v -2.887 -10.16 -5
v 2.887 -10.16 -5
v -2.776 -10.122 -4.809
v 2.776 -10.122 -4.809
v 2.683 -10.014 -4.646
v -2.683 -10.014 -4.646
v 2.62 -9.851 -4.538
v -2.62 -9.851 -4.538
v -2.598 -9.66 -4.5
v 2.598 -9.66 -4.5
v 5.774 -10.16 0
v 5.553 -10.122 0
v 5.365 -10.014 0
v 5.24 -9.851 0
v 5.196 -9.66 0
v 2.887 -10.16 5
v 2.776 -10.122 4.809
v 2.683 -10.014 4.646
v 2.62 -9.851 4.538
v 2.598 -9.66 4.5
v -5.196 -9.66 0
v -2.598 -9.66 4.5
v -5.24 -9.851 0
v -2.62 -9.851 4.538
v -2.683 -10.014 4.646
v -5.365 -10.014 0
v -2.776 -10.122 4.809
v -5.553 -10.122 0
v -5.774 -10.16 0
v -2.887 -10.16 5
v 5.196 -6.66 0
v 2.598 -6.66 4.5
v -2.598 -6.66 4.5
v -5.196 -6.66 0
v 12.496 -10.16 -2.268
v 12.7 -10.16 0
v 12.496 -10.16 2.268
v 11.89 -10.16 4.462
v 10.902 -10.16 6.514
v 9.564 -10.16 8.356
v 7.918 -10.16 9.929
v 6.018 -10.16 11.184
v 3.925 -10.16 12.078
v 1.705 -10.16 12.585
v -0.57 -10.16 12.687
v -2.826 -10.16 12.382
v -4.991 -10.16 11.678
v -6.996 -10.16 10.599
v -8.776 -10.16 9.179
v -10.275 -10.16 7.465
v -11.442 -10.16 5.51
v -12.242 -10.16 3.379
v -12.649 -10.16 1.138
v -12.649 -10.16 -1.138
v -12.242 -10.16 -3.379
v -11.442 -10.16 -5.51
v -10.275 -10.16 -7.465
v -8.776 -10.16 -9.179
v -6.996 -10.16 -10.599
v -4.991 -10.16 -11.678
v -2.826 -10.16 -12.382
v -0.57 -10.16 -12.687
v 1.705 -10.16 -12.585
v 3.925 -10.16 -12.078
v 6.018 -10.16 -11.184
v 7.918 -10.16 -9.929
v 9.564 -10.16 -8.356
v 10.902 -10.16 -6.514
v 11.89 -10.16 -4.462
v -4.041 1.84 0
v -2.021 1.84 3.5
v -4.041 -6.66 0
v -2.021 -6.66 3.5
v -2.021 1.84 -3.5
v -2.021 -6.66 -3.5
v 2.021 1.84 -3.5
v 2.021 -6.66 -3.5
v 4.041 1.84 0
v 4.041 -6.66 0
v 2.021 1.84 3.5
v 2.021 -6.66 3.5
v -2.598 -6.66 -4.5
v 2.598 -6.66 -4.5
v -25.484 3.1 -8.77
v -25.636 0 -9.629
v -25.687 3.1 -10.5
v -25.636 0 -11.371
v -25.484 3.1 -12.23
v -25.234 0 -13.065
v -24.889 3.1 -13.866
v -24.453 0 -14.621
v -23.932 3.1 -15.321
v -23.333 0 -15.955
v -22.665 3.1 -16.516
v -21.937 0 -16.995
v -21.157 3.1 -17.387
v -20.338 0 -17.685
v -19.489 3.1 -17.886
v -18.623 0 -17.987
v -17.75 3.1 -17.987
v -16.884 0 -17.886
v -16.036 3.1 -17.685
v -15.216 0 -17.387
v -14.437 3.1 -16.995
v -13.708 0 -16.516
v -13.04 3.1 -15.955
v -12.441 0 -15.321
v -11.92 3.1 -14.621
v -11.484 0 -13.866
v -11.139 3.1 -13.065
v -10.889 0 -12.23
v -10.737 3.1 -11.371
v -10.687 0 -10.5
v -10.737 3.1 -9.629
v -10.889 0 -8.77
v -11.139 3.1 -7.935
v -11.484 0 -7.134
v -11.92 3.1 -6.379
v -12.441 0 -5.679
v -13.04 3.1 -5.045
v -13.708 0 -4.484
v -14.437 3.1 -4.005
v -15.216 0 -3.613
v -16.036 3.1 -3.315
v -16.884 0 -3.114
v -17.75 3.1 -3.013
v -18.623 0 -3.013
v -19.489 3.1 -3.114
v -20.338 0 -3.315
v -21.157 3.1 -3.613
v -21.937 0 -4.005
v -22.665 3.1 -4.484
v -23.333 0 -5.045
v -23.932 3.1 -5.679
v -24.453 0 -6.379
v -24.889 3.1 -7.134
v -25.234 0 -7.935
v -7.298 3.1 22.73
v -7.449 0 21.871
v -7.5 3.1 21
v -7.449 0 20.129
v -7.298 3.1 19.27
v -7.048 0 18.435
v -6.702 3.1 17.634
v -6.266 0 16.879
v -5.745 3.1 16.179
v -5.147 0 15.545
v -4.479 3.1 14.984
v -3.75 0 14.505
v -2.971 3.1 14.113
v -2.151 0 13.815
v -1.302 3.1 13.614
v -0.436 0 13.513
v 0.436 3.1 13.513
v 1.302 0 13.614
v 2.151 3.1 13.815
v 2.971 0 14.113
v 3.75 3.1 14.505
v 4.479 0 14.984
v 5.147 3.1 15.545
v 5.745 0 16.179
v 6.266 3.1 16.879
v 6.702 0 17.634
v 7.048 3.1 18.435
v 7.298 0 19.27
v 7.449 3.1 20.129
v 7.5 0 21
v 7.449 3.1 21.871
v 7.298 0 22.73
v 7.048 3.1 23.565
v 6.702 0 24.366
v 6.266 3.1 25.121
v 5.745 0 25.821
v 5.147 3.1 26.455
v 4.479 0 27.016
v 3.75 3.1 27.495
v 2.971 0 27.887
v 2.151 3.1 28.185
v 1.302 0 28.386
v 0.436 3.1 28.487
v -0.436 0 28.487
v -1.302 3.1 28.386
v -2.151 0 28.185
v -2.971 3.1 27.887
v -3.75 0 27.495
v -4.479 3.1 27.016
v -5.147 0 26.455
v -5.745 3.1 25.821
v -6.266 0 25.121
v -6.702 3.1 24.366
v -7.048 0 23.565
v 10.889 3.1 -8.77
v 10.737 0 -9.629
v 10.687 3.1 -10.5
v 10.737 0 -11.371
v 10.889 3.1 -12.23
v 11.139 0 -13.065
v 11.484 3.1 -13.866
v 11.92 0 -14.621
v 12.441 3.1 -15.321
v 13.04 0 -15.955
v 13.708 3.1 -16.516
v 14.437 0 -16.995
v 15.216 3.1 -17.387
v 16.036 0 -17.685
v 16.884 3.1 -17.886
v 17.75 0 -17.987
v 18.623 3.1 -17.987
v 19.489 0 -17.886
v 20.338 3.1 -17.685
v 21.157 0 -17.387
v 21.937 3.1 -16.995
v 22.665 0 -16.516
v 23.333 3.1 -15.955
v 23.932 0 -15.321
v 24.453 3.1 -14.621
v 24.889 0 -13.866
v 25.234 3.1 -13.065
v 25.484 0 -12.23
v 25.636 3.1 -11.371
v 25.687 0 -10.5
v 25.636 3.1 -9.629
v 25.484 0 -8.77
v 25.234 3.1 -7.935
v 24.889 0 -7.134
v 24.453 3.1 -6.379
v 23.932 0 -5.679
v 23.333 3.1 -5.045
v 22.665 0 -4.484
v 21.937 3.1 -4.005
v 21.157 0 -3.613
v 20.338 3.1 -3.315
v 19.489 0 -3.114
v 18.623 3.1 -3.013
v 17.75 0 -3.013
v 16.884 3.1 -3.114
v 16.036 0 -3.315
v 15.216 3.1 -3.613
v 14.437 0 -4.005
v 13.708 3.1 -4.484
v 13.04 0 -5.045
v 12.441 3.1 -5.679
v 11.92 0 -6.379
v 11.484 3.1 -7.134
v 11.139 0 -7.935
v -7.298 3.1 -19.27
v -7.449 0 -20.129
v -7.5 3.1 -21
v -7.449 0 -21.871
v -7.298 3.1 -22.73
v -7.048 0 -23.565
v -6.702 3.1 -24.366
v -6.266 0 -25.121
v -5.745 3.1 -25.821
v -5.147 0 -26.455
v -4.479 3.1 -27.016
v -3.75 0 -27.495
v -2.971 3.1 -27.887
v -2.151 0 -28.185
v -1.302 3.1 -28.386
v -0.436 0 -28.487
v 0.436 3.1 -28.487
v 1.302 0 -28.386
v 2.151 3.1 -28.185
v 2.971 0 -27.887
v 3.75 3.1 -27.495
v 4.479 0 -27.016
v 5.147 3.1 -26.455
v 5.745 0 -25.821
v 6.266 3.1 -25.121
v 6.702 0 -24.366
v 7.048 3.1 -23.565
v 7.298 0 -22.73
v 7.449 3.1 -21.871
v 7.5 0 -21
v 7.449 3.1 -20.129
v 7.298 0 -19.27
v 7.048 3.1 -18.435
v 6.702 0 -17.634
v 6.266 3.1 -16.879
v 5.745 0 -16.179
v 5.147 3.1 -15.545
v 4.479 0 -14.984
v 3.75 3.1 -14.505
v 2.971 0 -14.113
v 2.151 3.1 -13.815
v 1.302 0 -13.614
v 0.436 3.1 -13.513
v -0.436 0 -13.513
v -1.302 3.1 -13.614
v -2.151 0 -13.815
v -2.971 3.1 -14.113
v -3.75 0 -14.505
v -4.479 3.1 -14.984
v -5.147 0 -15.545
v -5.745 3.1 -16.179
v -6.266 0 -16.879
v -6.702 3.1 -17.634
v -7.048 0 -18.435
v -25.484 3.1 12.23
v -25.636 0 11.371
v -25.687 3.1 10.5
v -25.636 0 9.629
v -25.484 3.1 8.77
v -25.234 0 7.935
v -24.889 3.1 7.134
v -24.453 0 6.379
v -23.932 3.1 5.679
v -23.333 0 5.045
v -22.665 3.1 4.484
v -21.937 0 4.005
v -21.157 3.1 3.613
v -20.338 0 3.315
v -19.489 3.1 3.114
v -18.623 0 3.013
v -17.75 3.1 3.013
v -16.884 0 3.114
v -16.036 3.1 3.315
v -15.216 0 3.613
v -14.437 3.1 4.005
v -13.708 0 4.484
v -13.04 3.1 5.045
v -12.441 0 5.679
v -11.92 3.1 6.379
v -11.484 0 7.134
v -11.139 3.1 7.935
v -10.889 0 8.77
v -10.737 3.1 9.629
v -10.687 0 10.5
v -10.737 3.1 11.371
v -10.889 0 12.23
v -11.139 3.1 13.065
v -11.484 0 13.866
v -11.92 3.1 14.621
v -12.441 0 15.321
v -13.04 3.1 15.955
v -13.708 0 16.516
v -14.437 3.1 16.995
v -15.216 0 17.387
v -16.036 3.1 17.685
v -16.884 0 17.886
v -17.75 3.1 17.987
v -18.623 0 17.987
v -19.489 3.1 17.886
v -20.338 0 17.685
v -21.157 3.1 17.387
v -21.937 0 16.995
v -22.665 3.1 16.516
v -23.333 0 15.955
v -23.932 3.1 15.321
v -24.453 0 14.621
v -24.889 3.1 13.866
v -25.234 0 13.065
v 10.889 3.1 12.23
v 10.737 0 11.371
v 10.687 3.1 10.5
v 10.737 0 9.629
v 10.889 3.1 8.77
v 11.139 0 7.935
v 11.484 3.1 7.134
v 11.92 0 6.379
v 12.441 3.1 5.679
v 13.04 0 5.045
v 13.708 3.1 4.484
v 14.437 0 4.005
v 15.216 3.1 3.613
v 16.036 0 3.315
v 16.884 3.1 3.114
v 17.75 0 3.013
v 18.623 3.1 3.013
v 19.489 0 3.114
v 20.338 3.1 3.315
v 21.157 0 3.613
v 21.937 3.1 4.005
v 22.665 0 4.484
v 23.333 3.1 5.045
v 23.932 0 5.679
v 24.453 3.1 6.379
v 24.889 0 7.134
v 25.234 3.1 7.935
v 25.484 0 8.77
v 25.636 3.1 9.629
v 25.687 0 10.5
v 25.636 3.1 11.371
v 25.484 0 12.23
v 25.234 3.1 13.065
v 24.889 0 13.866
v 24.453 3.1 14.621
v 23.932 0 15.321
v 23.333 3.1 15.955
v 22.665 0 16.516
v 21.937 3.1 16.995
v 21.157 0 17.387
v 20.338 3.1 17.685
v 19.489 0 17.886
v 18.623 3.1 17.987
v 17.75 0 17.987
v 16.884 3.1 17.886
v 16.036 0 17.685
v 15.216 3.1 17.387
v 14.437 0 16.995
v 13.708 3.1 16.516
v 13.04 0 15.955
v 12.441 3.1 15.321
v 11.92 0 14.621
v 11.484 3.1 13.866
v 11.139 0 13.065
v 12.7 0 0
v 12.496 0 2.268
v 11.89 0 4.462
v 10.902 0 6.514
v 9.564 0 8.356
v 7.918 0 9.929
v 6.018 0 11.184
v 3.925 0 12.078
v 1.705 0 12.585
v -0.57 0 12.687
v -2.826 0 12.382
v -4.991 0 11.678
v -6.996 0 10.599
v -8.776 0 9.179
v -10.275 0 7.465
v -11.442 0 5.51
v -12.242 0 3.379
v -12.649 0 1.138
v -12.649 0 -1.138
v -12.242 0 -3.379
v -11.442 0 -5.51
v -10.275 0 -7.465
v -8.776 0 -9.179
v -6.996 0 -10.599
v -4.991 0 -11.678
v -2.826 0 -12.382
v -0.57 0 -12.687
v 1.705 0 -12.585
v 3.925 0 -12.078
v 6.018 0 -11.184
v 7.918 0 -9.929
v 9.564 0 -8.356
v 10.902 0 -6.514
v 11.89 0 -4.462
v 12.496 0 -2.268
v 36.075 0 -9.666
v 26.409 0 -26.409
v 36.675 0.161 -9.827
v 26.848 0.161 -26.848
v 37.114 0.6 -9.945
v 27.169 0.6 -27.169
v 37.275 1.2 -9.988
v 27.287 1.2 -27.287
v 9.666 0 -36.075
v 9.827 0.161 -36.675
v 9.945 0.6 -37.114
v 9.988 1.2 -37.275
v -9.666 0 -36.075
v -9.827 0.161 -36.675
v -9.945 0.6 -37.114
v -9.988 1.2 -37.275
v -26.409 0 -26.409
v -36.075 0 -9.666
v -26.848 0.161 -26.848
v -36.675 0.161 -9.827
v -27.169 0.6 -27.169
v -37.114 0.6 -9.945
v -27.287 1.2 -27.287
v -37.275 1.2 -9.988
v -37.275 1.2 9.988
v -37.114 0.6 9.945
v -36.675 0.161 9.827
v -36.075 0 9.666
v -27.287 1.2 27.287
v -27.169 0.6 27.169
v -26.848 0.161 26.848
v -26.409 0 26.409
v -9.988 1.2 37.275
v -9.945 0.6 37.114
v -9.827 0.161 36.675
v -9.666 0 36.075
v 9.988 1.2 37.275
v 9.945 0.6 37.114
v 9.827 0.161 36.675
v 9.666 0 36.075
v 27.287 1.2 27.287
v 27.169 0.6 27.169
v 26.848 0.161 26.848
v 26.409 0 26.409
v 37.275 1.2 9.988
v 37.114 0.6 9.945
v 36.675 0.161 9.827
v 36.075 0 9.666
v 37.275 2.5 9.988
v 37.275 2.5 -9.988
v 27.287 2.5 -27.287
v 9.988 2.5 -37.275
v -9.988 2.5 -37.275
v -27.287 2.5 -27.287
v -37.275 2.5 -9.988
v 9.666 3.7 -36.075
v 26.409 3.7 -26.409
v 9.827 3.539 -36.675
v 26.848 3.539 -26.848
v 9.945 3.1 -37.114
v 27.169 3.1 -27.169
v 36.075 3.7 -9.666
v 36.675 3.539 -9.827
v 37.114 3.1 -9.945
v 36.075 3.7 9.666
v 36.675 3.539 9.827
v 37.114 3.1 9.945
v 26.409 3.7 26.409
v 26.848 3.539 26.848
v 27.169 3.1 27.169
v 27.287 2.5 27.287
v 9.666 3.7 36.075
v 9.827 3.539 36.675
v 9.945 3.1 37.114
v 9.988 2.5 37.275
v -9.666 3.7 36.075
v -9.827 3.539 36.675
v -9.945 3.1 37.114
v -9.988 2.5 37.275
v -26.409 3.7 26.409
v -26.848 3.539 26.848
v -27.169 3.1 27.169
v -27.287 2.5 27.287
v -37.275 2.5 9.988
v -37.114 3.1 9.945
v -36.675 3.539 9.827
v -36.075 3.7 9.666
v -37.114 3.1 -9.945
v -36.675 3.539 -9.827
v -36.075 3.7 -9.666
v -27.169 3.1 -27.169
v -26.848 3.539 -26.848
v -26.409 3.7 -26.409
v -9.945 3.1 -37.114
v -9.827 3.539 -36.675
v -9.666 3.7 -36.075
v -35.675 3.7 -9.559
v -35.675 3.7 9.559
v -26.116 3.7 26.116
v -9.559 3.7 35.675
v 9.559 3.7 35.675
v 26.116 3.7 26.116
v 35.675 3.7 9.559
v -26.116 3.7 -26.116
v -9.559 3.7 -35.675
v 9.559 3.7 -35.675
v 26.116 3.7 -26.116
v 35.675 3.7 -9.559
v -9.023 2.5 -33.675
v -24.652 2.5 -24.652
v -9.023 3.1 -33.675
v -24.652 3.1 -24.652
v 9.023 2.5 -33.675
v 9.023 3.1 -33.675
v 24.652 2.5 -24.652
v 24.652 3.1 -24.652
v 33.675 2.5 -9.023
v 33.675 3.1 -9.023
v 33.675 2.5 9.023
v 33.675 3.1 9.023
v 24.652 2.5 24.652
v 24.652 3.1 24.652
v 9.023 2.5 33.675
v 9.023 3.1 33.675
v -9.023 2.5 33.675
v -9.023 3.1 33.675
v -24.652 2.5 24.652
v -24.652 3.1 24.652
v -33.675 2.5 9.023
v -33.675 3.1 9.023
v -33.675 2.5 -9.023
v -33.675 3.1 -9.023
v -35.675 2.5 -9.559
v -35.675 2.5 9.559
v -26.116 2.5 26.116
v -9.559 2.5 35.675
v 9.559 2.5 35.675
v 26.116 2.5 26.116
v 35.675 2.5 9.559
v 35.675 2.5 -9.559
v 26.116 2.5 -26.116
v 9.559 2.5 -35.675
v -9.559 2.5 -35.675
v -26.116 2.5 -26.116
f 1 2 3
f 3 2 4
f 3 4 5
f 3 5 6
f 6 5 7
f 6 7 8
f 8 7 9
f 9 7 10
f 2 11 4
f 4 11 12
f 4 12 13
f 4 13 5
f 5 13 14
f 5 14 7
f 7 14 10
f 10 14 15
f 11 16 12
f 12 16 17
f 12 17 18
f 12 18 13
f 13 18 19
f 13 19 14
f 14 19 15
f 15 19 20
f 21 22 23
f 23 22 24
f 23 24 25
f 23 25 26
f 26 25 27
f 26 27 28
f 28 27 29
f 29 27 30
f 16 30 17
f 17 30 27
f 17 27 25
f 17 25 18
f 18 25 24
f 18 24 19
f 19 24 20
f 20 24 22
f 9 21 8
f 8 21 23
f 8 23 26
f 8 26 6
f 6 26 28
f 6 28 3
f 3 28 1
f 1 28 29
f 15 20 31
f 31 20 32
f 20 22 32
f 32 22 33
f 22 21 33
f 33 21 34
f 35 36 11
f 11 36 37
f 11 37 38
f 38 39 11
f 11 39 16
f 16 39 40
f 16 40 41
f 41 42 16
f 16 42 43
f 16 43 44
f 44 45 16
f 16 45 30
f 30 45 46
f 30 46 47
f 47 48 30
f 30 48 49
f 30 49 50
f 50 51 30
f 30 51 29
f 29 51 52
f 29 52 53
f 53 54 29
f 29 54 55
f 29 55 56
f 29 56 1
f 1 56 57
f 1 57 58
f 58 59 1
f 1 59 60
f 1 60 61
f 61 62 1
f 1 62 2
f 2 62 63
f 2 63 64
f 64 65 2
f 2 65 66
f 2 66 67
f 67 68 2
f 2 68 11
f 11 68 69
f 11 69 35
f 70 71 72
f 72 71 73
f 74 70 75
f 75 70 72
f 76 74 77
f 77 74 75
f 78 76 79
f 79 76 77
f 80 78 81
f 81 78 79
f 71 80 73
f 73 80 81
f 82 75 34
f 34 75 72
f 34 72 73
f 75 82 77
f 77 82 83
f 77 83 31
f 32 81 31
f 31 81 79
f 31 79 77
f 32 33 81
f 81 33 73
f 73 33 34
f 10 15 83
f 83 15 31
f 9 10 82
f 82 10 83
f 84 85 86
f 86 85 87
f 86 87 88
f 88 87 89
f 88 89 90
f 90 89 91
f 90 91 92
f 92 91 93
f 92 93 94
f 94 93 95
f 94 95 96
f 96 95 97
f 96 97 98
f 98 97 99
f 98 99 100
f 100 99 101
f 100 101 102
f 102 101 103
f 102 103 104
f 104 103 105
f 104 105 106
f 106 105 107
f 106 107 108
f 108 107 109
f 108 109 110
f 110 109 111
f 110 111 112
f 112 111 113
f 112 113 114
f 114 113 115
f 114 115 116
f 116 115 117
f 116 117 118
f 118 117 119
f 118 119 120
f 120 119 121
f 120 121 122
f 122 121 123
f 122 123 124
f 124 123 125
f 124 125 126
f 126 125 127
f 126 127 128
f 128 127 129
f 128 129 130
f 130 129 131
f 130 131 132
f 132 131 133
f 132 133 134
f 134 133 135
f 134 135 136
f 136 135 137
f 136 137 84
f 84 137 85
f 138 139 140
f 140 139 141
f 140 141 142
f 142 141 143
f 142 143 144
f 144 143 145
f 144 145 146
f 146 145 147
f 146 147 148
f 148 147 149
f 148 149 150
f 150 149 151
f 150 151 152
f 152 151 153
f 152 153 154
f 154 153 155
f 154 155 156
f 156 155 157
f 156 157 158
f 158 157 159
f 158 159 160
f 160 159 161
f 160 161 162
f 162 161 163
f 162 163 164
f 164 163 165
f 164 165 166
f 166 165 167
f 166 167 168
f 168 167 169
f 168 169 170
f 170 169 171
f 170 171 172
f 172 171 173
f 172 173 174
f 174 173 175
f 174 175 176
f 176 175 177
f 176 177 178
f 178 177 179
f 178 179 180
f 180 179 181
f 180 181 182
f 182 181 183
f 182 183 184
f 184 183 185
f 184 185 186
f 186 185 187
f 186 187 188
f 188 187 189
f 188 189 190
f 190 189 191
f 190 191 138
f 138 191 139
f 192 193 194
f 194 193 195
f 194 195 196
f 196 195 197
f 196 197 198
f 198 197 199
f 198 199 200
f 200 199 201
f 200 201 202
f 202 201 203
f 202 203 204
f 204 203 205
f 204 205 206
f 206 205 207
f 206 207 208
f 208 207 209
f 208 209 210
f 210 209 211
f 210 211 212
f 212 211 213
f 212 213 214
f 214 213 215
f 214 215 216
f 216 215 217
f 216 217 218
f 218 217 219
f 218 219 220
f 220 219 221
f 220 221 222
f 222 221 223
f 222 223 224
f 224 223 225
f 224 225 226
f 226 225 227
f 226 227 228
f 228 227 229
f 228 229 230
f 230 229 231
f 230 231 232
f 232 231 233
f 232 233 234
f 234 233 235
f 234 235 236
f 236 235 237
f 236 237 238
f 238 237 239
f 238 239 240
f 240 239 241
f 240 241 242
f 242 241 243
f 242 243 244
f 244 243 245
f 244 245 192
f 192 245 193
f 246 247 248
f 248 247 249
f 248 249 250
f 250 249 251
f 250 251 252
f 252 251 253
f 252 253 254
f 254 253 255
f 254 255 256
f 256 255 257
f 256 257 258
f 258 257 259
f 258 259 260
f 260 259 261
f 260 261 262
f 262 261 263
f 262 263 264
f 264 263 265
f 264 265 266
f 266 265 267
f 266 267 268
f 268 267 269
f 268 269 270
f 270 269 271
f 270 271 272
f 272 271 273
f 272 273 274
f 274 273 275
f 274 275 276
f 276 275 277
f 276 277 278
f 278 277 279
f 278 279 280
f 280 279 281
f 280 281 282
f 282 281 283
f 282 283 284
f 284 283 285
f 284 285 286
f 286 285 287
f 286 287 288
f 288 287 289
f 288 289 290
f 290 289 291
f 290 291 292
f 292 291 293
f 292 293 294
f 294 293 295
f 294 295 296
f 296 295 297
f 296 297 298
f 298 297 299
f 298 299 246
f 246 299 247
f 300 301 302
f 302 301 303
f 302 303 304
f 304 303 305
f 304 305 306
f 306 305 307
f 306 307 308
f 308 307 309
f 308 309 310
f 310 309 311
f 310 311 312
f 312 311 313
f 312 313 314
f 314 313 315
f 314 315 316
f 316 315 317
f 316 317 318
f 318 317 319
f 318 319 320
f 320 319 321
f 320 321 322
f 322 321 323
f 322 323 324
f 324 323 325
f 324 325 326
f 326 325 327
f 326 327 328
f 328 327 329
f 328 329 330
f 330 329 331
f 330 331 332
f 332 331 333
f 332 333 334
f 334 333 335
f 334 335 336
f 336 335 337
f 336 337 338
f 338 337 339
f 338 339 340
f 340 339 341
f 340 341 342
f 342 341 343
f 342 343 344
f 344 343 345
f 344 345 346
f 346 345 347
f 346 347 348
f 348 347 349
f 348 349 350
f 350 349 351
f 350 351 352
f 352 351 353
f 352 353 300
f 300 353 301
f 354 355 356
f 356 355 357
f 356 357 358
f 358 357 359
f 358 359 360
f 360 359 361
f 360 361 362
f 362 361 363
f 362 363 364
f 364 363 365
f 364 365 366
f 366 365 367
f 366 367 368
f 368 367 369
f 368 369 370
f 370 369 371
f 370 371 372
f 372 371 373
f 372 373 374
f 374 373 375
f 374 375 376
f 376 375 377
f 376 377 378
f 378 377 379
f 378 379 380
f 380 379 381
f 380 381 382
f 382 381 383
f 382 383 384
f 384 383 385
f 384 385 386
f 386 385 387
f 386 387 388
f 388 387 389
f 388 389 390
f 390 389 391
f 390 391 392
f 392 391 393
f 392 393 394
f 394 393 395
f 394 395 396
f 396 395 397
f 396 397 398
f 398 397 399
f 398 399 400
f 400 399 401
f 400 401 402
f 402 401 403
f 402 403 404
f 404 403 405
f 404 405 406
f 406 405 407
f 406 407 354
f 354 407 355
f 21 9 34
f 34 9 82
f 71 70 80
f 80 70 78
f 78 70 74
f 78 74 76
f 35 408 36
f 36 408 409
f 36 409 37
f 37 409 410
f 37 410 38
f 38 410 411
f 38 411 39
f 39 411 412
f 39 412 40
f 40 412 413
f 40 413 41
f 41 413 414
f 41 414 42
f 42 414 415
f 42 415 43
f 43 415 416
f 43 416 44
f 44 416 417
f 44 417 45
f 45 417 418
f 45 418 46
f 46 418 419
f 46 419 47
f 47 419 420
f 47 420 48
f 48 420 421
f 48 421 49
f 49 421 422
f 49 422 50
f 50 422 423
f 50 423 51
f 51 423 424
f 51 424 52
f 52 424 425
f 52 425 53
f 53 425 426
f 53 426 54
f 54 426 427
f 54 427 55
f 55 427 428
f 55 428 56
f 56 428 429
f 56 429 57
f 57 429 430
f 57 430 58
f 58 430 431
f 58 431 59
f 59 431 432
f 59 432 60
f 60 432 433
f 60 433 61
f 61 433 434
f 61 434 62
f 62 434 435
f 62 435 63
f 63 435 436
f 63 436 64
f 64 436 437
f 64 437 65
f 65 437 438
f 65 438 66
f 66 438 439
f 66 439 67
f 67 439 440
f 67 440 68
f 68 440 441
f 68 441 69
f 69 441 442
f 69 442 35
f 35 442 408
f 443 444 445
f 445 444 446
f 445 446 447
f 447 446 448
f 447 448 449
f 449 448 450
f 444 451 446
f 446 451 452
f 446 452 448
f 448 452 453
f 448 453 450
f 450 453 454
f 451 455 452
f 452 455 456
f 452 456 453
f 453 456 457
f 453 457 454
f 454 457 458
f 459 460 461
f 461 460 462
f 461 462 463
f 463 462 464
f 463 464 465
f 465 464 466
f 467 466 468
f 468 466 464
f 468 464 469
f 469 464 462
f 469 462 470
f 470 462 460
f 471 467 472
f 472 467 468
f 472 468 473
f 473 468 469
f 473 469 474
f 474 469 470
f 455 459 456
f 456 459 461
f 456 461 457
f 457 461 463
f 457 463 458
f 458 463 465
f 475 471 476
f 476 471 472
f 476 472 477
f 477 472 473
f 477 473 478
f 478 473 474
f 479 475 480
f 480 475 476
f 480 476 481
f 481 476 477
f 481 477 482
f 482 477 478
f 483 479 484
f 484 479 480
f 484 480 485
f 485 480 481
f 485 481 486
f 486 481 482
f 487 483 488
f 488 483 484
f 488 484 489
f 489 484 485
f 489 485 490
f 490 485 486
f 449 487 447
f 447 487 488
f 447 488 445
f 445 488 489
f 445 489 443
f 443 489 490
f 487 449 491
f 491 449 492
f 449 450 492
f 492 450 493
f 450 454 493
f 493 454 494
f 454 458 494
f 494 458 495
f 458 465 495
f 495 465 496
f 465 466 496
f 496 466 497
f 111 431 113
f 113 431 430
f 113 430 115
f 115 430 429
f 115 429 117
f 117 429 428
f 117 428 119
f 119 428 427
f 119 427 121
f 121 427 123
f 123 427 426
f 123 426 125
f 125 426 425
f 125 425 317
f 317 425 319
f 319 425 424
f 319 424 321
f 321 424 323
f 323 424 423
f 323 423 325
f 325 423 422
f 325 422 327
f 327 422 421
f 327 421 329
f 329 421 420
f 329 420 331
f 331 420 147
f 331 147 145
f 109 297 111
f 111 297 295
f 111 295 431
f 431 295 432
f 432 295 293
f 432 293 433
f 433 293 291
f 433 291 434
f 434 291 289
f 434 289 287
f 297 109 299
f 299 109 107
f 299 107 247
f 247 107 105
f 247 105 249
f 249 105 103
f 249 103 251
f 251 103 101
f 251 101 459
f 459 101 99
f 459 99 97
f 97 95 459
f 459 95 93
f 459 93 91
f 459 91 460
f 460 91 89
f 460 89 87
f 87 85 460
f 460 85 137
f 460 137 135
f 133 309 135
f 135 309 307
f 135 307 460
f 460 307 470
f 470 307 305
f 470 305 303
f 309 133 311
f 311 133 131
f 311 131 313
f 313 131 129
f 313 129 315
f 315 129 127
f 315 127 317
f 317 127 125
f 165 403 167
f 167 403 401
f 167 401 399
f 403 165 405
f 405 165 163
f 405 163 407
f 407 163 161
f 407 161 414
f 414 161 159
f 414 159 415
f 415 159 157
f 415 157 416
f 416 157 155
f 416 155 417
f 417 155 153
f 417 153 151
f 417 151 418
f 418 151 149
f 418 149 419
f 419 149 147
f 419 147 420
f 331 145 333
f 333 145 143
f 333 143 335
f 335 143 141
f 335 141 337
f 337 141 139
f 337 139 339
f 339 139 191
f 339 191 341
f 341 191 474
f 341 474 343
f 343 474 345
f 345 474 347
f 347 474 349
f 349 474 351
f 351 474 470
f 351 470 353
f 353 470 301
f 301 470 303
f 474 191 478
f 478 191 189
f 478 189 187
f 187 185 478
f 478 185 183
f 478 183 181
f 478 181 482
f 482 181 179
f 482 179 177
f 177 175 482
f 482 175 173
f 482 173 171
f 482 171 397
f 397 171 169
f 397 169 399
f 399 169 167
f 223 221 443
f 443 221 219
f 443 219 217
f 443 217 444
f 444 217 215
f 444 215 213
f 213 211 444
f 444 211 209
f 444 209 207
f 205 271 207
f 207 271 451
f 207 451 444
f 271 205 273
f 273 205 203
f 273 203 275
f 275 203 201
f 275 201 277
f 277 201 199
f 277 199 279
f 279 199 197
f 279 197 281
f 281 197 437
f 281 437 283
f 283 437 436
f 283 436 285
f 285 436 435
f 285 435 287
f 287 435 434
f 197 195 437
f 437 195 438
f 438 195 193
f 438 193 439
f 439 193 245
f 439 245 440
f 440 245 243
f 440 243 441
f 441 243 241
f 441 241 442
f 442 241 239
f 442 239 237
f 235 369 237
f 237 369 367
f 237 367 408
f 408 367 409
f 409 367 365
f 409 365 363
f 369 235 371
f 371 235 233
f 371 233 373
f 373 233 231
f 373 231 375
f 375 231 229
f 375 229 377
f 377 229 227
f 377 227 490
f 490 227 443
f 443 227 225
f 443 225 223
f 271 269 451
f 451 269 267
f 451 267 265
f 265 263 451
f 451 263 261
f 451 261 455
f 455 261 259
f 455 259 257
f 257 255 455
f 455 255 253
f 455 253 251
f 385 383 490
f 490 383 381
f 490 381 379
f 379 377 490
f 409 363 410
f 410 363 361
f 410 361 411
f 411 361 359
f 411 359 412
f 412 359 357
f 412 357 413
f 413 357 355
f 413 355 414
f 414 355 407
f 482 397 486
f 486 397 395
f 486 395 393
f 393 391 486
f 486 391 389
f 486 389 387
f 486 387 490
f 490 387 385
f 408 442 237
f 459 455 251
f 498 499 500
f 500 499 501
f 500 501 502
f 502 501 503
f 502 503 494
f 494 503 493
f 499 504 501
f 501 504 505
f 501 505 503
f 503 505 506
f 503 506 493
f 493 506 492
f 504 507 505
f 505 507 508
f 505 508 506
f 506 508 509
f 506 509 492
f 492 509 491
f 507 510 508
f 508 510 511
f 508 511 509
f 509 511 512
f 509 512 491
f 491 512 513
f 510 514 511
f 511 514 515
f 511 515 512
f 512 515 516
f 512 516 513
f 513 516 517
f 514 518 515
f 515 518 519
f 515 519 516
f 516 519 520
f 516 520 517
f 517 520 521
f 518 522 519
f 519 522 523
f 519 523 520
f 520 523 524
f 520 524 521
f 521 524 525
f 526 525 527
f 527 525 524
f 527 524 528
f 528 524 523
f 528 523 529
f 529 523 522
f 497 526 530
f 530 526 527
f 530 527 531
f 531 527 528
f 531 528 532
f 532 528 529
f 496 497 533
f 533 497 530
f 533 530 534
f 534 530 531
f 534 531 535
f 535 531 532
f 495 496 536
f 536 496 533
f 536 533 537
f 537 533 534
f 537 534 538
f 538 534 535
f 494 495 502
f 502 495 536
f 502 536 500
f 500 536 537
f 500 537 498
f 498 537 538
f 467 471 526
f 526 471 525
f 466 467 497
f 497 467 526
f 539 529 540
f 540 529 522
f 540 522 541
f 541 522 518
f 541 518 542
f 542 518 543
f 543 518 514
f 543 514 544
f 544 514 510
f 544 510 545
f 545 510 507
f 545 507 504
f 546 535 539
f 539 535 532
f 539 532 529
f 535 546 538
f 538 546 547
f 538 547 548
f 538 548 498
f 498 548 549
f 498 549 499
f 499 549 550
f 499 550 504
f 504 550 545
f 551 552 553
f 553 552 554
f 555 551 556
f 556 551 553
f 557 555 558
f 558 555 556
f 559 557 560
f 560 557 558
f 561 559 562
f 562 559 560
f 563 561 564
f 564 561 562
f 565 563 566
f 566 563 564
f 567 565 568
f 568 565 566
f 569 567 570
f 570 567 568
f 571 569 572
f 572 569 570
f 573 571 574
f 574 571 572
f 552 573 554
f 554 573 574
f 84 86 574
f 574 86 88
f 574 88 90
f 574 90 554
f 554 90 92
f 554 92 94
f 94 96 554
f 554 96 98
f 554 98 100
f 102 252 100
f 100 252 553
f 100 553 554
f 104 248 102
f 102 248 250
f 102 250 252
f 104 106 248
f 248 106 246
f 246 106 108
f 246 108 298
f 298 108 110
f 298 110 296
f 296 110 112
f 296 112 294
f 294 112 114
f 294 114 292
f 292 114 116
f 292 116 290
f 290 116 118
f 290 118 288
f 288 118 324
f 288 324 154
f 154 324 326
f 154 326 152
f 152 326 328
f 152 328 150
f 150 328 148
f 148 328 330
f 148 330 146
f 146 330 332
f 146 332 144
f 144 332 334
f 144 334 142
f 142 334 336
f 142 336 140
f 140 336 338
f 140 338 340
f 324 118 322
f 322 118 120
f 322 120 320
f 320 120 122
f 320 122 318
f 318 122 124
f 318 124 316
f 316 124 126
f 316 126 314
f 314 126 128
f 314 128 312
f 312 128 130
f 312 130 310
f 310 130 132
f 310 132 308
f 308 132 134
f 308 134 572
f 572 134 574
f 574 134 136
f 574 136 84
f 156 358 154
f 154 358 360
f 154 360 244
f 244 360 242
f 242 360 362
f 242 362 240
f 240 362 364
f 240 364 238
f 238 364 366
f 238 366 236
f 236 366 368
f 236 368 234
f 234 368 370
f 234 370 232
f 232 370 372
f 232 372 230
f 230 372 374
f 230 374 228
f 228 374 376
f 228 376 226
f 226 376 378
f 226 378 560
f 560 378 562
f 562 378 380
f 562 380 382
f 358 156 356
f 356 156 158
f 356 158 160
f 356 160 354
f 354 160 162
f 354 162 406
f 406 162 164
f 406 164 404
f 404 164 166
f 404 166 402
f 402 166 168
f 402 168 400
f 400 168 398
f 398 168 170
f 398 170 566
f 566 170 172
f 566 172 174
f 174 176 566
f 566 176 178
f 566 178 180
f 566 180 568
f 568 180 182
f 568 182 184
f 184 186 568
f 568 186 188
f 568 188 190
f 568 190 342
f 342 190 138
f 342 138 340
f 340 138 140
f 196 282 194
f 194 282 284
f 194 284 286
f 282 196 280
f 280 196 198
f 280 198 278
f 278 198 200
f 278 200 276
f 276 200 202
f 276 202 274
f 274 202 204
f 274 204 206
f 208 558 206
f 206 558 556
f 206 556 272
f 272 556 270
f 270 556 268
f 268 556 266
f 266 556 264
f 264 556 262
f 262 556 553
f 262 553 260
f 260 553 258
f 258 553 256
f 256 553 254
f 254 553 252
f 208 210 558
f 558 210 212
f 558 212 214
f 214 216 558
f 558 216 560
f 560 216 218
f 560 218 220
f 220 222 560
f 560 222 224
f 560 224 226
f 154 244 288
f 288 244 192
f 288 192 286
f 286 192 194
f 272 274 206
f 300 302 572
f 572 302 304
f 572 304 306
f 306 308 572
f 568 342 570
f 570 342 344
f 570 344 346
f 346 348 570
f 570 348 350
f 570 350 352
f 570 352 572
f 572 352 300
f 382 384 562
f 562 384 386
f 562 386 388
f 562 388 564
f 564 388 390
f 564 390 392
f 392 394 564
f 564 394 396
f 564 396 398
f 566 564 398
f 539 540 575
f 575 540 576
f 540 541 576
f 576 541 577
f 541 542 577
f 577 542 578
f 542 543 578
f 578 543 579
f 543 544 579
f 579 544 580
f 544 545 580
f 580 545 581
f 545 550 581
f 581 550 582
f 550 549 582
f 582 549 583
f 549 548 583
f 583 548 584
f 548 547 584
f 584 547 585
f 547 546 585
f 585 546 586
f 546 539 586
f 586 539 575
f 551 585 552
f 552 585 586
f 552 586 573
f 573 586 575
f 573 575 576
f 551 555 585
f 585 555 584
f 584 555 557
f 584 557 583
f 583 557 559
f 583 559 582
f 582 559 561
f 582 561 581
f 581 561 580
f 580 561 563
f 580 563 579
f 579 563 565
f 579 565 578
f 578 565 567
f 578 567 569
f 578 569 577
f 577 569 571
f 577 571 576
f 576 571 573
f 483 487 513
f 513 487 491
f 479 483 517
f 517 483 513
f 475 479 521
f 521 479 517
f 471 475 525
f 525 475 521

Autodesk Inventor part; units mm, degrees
ref_plane "YZ Plane" through (0, 0, 0) normal (1, 0, 0) x (0, 1, 0)
ref_plane "XZ Plane" through (0, 0, 0) normal (0, 1, 0) x (-1, 0, 0)
ref_plane "XY Plane" through (0, 0, 0) normal (0, 0, 1) x (1, 0, 0)
sketch "스케치1" plane through (0, 0, 0) normal (0, 1, 0) x (-1, 0, 0)
  line L0 (24.9446, -24.9446) -> (9.1304, -34.075)
  line L1 (9.1304, -34.075) -> (-9.1304, -34.075)
  line L2 (-9.1304, -34.075) -> (-24.9446, -24.9446)
  line L3 (-24.9446, -24.9446) -> (-34.075, -9.1304)
  line L4 (-34.075, -9.1304) -> (-34.075, 9.1304)
  line L5 (-34.075, 9.1304) -> (-24.9446, 24.9446)
  line L6 (-24.9446, 24.9446) -> (-9.1304, 34.075)
  line L7 (-9.1304, 34.075) -> (9.1304, 34.075)
  line L8 (9.1304, 34.075) -> (24.9446, 24.9446)
  line L9 (24.9446, 24.9446) -> (34.075, 9.1304)
  line L10 (34.075, 9.1304) -> (34.075, -9.1304)
  line L11 (34.075, -9.1304) -> (24.9446, -24.9446)
  line L12 (9.9878, -37.275) -> (-9.9878, -37.275)
  line L13 (-9.9878, -37.275) -> (-27.2872, -27.2872)
  line L14 (-27.2872, -27.2872) -> (-37.275, -9.9878)
  line L15 (-37.275, -9.9878) -> (-37.275, 9.9878)
  line L16 (-37.275, 9.9878) -> (-27.2872, 27.2872)
  line L17 (-27.2872, 27.2872) -> (-9.9878, 37.275)
  line L18 (-9.9878, 37.275) -> (9.9878, 37.275)
  line L19 (9.9878, 37.275) -> (27.2872, 27.2872)
  line L20 (27.2872, 27.2872) -> (37.275, 9.9878)
  line L21 (37.275, 9.9878) -> (37.275, -9.9878)
  line L22 (37.275, -9.9878) -> (27.2872, -27.2872)
  line L23 (27.2872, -27.2872) -> (9.9878, -37.275)
  point P0 (0, 0)
  point P1 (0, 0)
  point P2 (0, 0)
  dimension "d0" = 70.554
  dimension "d1" = 3.2
extrude "돌출1" add sketch "스케치1" along normal blind 3.7 contours L0 L1 L2 L3 L4 L5 L6 L7 L8 L9 L10 L11 | L12 L13 L14 L15 L16 L17 L18 L19 L20 L21 L22 L23
sketch "스케치2" plane through (0, 3.7, 0) normal (0, 1, 0) x (1, 0, 0)
  line L0 (-9.5591, 35.675) -> (9.5591, 35.675)
  line L1 (9.5591, 35.675) -> (26.1159, 26.1159)
  line L2 (26.1159, 26.1159) -> (35.675, 9.5591)
  line L3 (35.675, 9.5591) -> (35.675, -9.5591)
  line L4 (35.675, -9.5591) -> (26.1159, -26.1159)
  line L5 (26.1159, -26.1159) -> (9.5591, -35.675)
  line L6 (9.5591, -35.675) -> (-9.5591, -35.675)
  line L7 (-9.5591, -35.675) -> (-26.1159, -26.1159)
  line L8 (-26.1159, -26.1159) -> (-35.675, -9.5591)
  line L9 (-35.675, -9.5591) -> (-35.675, 9.5591)
  line L10 (-35.675, 9.5591) -> (-26.1159, 26.1159)
  line L11 (-26.1159, 26.1159) -> (-9.5591, 35.675)
  line L12 (9.9878, 37.275) -> (-9.9878, 37.275) projected
  point P0 (0, 0)
  point P1 (0, 0)
  point P2 (0, 35.675)
  dimension "d4" = 1.6
extrude "돌출2" cut sketch "스케치2" against normal blind 1.2
sketch "스케치3" plane through (0, 2.5, 0) normal (0, 1, 0) x (1, 0, 0)
  line L0 (-9.0232, 33.675) -> (9.0232, 33.675)
  line L1 (9.0232, 33.675) -> (24.6518, 24.6518)
  line L2 (24.6518, 24.6518) -> (33.675, 9.0232)
  line L3 (33.675, 9.0232) -> (33.675, -9.0232)
  line L4 (33.675, -9.0232) -> (24.6518, -24.6518)
  line L5 (24.6518, -24.6518) -> (9.0232, -33.675)
  line L6 (9.0232, -33.675) -> (-9.0232, -33.675)
  line L7 (-9.0232, -33.675) -> (-24.6518, -24.6518)
  line L8 (-24.6518, -24.6518) -> (-33.675, -9.0232)
  line L9 (-33.675, -9.0232) -> (-33.675, 9.0232)
  line L10 (-33.675, 9.0232) -> (-24.6518, 24.6518)
  line L11 (-24.6518, 24.6518) -> (-9.0232, 33.675)
  line L12 (-9.5591, 35.675) -> (9.5591, 35.675) projected
  point P0 (0, 0)
  point P1 (0, 0)
  dimension "d7" = 2
extrude "돌출3" add sketch "스케치3" along normal blind 0.6
fillet "모깎기1" radius 1.2 24 edges at (-18.6375, 3.7, 32.2811) (-32.2811, 3.7, 18.6375) (-37.275, 3.7, 0) (0, 3.7, 37.275) (18.6375, 3.7, 32.2811) (32.2811, 3.7, 18.6375) (37.275, 3.7, 0) (32.2811, 3.7, -18.6375) (18.6375, 3.7, -32.2811) (0, 3.7, -37.275) (-18.6375, 3.7, -32.2811) (-32.2811, 3.7, -18.6375) (-37.275, 0, 0) (-32.2811, 0, 18.6375) (-18.6375, 0, 32.2811) (0, 0, 37.275) (18.6375, 0, 32.2811) (32.2811, 0, 18.6375) (37.275, 0, 0) (32.2811, 0, -18.6375) (18.6375, 0, -32.2811) (0, 0, -37.275) (-18.6375, 0, -32.2811) (-32.2811, 0, -18.6375)
sketch "스케치11" plane through (0, 0, 0) normal (0, -1, 0) x (1, 0, 0)
  circle A0 centre (0, 0) radius 12.7
  dimension "d48" = 25.4
extrude "돌출11" add sketch "스케치11" along normal blind 10.16
sketch "스케치12" plane through (0, -10.16, 0) normal (0, -1, 0) x (1, 0, 0)
  circle A0 centre (0, 0) radius 4.5
  line L0 (-2.5981, 4.5) -> (2.5981, 4.5)
  line L1 (2.5981, 4.5) -> (5.1962, 0)
  line L2 (5.1962, 0) -> (2.5981, -4.5)
  line L3 (2.5981, -4.5) -> (-2.5981, -4.5)
  line L4 (-2.5981, -4.5) -> (-5.1962, 0)
  line L5 (-5.1962, 0) -> (-2.5981, 4.5)
  point P0 (-3.8971, 2.25)
  point P1 (-3.8971, -2.25)
  point P2 (0, 4.5)
  point P3 (0, -4.5)
  point P4 (3.8971, -2.25)
  point P5 (3.8971, 2.25)
  dimension "d51" = 9
extrude "돌출12" cut sketch "스케치12" against normal blind 12
sketch "스케치13" plane through (0, 0, 0) normal (0, -1, 0) x (1, 0, 0)
  circle A0 centre (0, -21) radius 7.5
  circle A1 centre (18.1865, -10.5) radius 7.5
  circle A2 centre (18.1865, 10.5) radius 7.5
  circle A3 centre (0, 21) radius 7.5
  circle A4 centre (-18.1865, 10.5) radius 7.5
  circle A5 centre (-18.1865, -10.5) radius 7.5
  point P0 (0, 0)
  dimension "d56" = 15
  dimension "d57" = 21
  dimension "d60" = 360
extrude "돌출13" cut sketch "스케치13" against normal up to surface (3.1 mm away)
sketch "스케치16" plane through (0, 1.84, 0) normal (0, -1, 0) x (1, 0, 0)
  line L0 (-2.5981, 4.5) -> (2.5981, 4.5) projected
  line L1 (-5.1962, 0) -> (-2.5981, 4.5) projected
  line L2 (-2.5981, -4.5) -> (-5.1962, 0) projected
  line L3 (2.5981, -4.5) -> (-2.5981, -4.5) projected
  line L4 (5.1962, 0) -> (2.5981, -4.5) projected
  line L5 (2.5981, 4.5) -> (5.1962, 0) projected
  line L6 (-2.0207, 3.5) -> (2.0207, 3.5)
  line L7 (2.0207, 3.5) -> (4.0415, 0)
  line L8 (4.0415, 0) -> (2.0207, -3.5)
  line L9 (2.0207, -3.5) -> (-2.0207, -3.5)
  line L10 (-2.0207, -3.5) -> (-4.0415, 0)
  line L11 (-4.0415, 0) -> (-2.0207, 3.5)
  point P0 (0, 0)
  point P1 (0, 0)
  dimension "d82" = 1
extrude "돌출14" add sketch "스케치16" along normal blind 8.5
fillet "모깎기2" radius 0.5 6 edges at (0, -10.16, 4.5) (3.8971, -10.16, 2.25) (3.8971, -10.16, -2.25) (0, -10.16, -4.5) (-3.8971, -10.16, 2.25) (-3.8971, -10.16, -2.25)
equation "\"d71\" = 55deg"
properties part number "OV-PAM_n_12_bottom"
